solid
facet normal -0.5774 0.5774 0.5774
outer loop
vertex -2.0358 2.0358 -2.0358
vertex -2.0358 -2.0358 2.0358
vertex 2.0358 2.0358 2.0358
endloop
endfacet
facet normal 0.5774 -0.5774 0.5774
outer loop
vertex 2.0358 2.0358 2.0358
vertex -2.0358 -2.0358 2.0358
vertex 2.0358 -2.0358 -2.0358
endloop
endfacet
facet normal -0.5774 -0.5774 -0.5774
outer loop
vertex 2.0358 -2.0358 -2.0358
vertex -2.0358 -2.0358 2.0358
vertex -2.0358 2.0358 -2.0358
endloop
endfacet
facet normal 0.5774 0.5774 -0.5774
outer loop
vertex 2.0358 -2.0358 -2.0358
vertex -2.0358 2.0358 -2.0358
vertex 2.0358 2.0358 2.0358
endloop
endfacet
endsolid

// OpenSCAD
// file: ../maths_geodesic.scad
/*
	License: This code is placed in the public Domain
	Contributed By: Willliam A Adams
	August 2011
*/

// A couple of useful constants
Cpi = 3.14159;
Cphi = 1.61803399;
Cepsilon = 0.00000001;

 
// Function: clean
//
// Parameters:
//	n - A number that might be very close to zero
// Description:  
//	There are times when you want a very small number to 
// 	just be zero, instead of being that very small number.
//	This function will compare the number to an arbitrarily small 
//	number.  If it is smaller than the 'epsilon', then zero will be 
// 	returned.  Otherwise, the original number will be returned.
//

function clean(n) = (n < 0) ? ((n < -Cepsilon) ? n : 0) : 
	(n < Cepsilon) ? 0 : n; 

// Function: safediv
//
// Parameters
//	n - The numerator
//	d - The denominator
//
// Description:
//	Since division by zero is generally not a desirable thing, safediv
//	will return '0' whenever there is a division by zero.  Although this will
//	mask some erroneous division by zero errors, it is often the case
//	that you actually want this behavior.  So, it makes it convenient.
function safediv(n,d) = (d==0) ? 0 : n/d;


//==================================
// Degrees
//==================================

function DEGREES(radians) = (180/Cpi) * radians;

function RADIANS(degrees) = Cpi/180 * degrees;

function deg(deg, min=0, sec=0) = [deg, min, sec];

function deg_to_dec(d) = d[0] + d[1]/60 + d[2]/60/60;


//==================================
//  Spherical coordinates
//==================================

// create an instance of a spherical coordinate
// long - rotation around z -axis
// lat - latitude, starting at 0 == 'north pole'
// rad - distance from center
function sph(long, lat, rad=1) = [long, lat, rad];

// Convert spherical to cartesian
function sph_to_cart(s) = [
	clean(s[2]*sin(s[1])*cos(s[0])),  
	clean(s[2]*sin(s[1])*sin(s[0])),
	clean(s[2]*cos(s[1]))
	];

// Convert from cartesian to spherical
function sph_from_cart(c) = sph(
	atan2(c[1],c[0]), 
	atan2(sqrt(c[0]*c[0]+c[1]*c[1]), c[2]), 
	sqrt(c[0]*c[0]+c[1]*c[1]+c[2]*c[2])
	);

function sphu_from_cart(c, rad=1) = sph(
	atan2(c[1],c[0]), 
	atan2(sqrt(c[0]*c[0]+c[1]*c[1]), c[2]), 
	rad
	);

// compute the chord distance between two points on a sphere
function sph_dist(c1, c2) = sqrt(
	c1[2]*c1[2] + c2[2]*c2[2] - 
	2*c1[2]*c2[2]*
	((cos(c1[1])*cos(c2[1])) + cos(c1[0]-c2[0])*sin(c1[1])*sin(c2[1]))   
	);


//==========================================
//	Geodesic calculations
// 
//  Reference: Geodesic Math and How to Use It
//  By: Hugh Kenner
//  Second Paperback Edition (2003), p.74-75
//  http://www.amazon.com/Geodesic-Math-How-Hugh-Kenner/dp/0520239318
//
//  The book was used for reference, so if you want to check the math, 
//  you can plug in various numbers to various routines and see if you get
//  the same numbers in the book.
//
//  In general, there are enough routines here to implement the various
//  pieces necessary to make geodesic objects.
//==========================================

function poly_sum_interior_angles(sides) = (sides-2)*180;
function poly_single_interior_angle(pq) = poly_sum_interior_angles(pq[0])/pq[0];



// Given a set of coordinates, return the frequency
// Simply calculated by adding up the values of the coordinates
function geo_freq(xyz) = xyz[0]+xyz[1]+xyz[2];

// Convert between the 2D coordinates of vertices on the face triangle
// to the 3D vertices needed to calculate spherical coordinates
function geo_tri2_tri3(xyf) = [xyf[1], xyf[0]-xyf[1], xyf[2]-xyf[0]];

// Given coordinates for a vertex on the octahedron face
// return the spherical coordinates for the vertex
// class 1, method 1
function octa_class1(c) = sph(
	atan(safediv(c[0], c[1])),
	atan(sqrt(c[0]*c[0]+c[1]*c[1])/c[2]),
	1 
	);

function octa_class2(c) = sph(
	atan(c[0]/c[1]),
	atan( sqrt( 2*(c[0]*c[0]+c[1]*c[1])) /c[2]),
	1 
	);

function icosa_class1(c) = octa_class1(
	[
		c[0]*sin(72),  
		c[1]+c[0]*cos(72),  
		geo_freq(c)/2+c[2]/Cphi
	]);

function icosa_class2(c) = sph(
	atan([c0]/c[1]), 
	atan(sqrt(c[0]*c[0]+c[1]*c[1]))/cos(36)*c[2],
	1
	);
 
function tetra_class1(c) = octa_class1(
	[
		sqrt(3*c[0]),  
		2*c[1]-c[0],  
		(3*c[2]-c[0]-c[1])/sqrt(2)
	]);

function class1_icosa_chord_factor(v1, v2, freq) = sph_dist( 
		icosa_class1(geo_tri2_tri3( [v1[0], v1[1], freq])),
		icosa_class1(geo_tri2_tri3( [v2[0], v2[1], freq]))
	);
// main file
// file autogenerated by platonicSTLgen
// author: thanasi athanassiadis (thanasi@uchicago.edu)
// script dated: august 25, 2012

include <../platonic.scad>

// units are mm

rad = 3.526132;

 poly = tetrahedron(rad);

for(i = [ [0.000000,0.000000,0.000000],[0.000000,5.289198,0.000000],[0.000000,10.578396,0.000000],[0.000000,15.867594,0.000000],[0.000000,21.156792,0.000000],[0.000000,26.445989,0.000000],[0.000000,31.735187,0.000000],[0.000000,37.024385,0.000000],[0.000000,42.313583,0.000000],[0.000000,47.602781,0.000000],[5.289198,0.000000,0.000000],[5.289198,5.289198,0.000000],[5.289198,10.578396,0.000000],[5.289198,15.867594,0.000000],[5.289198,21.156792,0.000000],[5.289198,26.445989,0.000000],[5.289198,31.735187,0.000000],[5.289198,37.024385,0.000000],[5.289198,42.313583,0.000000],[5.289198,47.602781,0.000000],[10.578396,0.000000,0.000000],[10.578396,5.289198,0.000000],[10.578396,10.578396,0.000000],[10.578396,15.867594,0.000000],[10.578396,21.156792,0.000000],[10.578396,26.445989,0.000000],[10.578396,31.735187,0.000000],[10.578396,37.024385,0.000000],[10.578396,42.313583,0.000000],[10.578396,47.602781,0.000000],[15.867594,0.000000,0.000000],[15.867594,5.289198,0.000000],[15.867594,10.578396,0.000000],[15.867594,15.867594,0.000000],[15.867594,21.156792,0.000000],[15.867594,26.445989,0.000000],[15.867594,31.735187,0.000000],[15.867594,37.024385,0.000000],[15.867594,42.313583,0.000000],[15.867594,47.602781,0.000000],[21.156792,0.000000,0.000000],[21.156792,5.289198,0.000000],[21.156792,10.578396,0.000000],[21.156792,15.867594,0.000000],[21.156792,21.156792,0.000000],[21.156792,26.445989,0.000000],[21.156792,31.735187,0.000000],[21.156792,37.024385,0.000000],[21.156792,42.313583,0.000000],[21.156792,47.602781,0.000000],[26.445989,0.000000,0.000000],[26.445989,5.289198,0.000000],[26.445989,10.578396,0.000000],[26.445989,15.867594,0.000000],[26.445989,21.156792,0.000000],[26.445989,26.445989,0.000000],[26.445989,31.735187,0.000000],[26.445989,37.024385,0.000000],[26.445989,42.313583,0.000000],[26.445989,47.602781,0.000000],[31.735187,0.000000,0.000000],[31.735187,5.289198,0.000000],[31.735187,10.578396,0.000000],[31.735187,15.867594,0.000000],[31.735187,21.156792,0.000000],[31.735187,26.445989,0.000000],[31.735187,31.735187,0.000000],[31.735187,37.024385,0.000000],[31.735187,42.313583,0.000000],[31.735187,47.602781,0.000000],[37.024385,0.000000,0.000000],[37.024385,5.289198,0.000000],[37.024385,10.578396,0.000000],[37.024385,15.867594,0.000000],[37.024385,21.156792,0.000000],[37.024385,26.445989,0.000000],[37.024385,31.735187,0.000000],[37.024385,37.024385,0.000000],[37.024385,42.313583,0.000000],[37.024385,47.602781,0.000000],[42.313583,0.000000,0.000000],[42.313583,5.289198,0.000000],[42.313583,10.578396,0.000000],[42.313583,15.867594,0.000000],[42.313583,21.156792,0.000000],[42.313583,26.445989,0.000000],[42.313583,31.735187,0.000000],[42.313583,37.024385,0.000000],[42.313583,42.313583,0.000000],[42.313583,47.602781,0.000000],[47.602781,0.000000,0.000000],[47.602781,5.289198,0.000000],[47.602781,10.578396,0.000000],[47.602781,15.867594,0.000000],[47.602781,21.156792,0.000000],[47.602781,26.445989,0.000000],[47.602781,31.735187,0.000000],[47.602781,37.024385,0.000000],[47.602781,42.313583,0.000000],[47.602781,47.602781,0.000000] ])
{
    translate(i);
    display_polyhedron(poly);
}

module display_polyhedron(poly) 
{
polyhedron(points = poly[0], triangles = poly[1]);
}
